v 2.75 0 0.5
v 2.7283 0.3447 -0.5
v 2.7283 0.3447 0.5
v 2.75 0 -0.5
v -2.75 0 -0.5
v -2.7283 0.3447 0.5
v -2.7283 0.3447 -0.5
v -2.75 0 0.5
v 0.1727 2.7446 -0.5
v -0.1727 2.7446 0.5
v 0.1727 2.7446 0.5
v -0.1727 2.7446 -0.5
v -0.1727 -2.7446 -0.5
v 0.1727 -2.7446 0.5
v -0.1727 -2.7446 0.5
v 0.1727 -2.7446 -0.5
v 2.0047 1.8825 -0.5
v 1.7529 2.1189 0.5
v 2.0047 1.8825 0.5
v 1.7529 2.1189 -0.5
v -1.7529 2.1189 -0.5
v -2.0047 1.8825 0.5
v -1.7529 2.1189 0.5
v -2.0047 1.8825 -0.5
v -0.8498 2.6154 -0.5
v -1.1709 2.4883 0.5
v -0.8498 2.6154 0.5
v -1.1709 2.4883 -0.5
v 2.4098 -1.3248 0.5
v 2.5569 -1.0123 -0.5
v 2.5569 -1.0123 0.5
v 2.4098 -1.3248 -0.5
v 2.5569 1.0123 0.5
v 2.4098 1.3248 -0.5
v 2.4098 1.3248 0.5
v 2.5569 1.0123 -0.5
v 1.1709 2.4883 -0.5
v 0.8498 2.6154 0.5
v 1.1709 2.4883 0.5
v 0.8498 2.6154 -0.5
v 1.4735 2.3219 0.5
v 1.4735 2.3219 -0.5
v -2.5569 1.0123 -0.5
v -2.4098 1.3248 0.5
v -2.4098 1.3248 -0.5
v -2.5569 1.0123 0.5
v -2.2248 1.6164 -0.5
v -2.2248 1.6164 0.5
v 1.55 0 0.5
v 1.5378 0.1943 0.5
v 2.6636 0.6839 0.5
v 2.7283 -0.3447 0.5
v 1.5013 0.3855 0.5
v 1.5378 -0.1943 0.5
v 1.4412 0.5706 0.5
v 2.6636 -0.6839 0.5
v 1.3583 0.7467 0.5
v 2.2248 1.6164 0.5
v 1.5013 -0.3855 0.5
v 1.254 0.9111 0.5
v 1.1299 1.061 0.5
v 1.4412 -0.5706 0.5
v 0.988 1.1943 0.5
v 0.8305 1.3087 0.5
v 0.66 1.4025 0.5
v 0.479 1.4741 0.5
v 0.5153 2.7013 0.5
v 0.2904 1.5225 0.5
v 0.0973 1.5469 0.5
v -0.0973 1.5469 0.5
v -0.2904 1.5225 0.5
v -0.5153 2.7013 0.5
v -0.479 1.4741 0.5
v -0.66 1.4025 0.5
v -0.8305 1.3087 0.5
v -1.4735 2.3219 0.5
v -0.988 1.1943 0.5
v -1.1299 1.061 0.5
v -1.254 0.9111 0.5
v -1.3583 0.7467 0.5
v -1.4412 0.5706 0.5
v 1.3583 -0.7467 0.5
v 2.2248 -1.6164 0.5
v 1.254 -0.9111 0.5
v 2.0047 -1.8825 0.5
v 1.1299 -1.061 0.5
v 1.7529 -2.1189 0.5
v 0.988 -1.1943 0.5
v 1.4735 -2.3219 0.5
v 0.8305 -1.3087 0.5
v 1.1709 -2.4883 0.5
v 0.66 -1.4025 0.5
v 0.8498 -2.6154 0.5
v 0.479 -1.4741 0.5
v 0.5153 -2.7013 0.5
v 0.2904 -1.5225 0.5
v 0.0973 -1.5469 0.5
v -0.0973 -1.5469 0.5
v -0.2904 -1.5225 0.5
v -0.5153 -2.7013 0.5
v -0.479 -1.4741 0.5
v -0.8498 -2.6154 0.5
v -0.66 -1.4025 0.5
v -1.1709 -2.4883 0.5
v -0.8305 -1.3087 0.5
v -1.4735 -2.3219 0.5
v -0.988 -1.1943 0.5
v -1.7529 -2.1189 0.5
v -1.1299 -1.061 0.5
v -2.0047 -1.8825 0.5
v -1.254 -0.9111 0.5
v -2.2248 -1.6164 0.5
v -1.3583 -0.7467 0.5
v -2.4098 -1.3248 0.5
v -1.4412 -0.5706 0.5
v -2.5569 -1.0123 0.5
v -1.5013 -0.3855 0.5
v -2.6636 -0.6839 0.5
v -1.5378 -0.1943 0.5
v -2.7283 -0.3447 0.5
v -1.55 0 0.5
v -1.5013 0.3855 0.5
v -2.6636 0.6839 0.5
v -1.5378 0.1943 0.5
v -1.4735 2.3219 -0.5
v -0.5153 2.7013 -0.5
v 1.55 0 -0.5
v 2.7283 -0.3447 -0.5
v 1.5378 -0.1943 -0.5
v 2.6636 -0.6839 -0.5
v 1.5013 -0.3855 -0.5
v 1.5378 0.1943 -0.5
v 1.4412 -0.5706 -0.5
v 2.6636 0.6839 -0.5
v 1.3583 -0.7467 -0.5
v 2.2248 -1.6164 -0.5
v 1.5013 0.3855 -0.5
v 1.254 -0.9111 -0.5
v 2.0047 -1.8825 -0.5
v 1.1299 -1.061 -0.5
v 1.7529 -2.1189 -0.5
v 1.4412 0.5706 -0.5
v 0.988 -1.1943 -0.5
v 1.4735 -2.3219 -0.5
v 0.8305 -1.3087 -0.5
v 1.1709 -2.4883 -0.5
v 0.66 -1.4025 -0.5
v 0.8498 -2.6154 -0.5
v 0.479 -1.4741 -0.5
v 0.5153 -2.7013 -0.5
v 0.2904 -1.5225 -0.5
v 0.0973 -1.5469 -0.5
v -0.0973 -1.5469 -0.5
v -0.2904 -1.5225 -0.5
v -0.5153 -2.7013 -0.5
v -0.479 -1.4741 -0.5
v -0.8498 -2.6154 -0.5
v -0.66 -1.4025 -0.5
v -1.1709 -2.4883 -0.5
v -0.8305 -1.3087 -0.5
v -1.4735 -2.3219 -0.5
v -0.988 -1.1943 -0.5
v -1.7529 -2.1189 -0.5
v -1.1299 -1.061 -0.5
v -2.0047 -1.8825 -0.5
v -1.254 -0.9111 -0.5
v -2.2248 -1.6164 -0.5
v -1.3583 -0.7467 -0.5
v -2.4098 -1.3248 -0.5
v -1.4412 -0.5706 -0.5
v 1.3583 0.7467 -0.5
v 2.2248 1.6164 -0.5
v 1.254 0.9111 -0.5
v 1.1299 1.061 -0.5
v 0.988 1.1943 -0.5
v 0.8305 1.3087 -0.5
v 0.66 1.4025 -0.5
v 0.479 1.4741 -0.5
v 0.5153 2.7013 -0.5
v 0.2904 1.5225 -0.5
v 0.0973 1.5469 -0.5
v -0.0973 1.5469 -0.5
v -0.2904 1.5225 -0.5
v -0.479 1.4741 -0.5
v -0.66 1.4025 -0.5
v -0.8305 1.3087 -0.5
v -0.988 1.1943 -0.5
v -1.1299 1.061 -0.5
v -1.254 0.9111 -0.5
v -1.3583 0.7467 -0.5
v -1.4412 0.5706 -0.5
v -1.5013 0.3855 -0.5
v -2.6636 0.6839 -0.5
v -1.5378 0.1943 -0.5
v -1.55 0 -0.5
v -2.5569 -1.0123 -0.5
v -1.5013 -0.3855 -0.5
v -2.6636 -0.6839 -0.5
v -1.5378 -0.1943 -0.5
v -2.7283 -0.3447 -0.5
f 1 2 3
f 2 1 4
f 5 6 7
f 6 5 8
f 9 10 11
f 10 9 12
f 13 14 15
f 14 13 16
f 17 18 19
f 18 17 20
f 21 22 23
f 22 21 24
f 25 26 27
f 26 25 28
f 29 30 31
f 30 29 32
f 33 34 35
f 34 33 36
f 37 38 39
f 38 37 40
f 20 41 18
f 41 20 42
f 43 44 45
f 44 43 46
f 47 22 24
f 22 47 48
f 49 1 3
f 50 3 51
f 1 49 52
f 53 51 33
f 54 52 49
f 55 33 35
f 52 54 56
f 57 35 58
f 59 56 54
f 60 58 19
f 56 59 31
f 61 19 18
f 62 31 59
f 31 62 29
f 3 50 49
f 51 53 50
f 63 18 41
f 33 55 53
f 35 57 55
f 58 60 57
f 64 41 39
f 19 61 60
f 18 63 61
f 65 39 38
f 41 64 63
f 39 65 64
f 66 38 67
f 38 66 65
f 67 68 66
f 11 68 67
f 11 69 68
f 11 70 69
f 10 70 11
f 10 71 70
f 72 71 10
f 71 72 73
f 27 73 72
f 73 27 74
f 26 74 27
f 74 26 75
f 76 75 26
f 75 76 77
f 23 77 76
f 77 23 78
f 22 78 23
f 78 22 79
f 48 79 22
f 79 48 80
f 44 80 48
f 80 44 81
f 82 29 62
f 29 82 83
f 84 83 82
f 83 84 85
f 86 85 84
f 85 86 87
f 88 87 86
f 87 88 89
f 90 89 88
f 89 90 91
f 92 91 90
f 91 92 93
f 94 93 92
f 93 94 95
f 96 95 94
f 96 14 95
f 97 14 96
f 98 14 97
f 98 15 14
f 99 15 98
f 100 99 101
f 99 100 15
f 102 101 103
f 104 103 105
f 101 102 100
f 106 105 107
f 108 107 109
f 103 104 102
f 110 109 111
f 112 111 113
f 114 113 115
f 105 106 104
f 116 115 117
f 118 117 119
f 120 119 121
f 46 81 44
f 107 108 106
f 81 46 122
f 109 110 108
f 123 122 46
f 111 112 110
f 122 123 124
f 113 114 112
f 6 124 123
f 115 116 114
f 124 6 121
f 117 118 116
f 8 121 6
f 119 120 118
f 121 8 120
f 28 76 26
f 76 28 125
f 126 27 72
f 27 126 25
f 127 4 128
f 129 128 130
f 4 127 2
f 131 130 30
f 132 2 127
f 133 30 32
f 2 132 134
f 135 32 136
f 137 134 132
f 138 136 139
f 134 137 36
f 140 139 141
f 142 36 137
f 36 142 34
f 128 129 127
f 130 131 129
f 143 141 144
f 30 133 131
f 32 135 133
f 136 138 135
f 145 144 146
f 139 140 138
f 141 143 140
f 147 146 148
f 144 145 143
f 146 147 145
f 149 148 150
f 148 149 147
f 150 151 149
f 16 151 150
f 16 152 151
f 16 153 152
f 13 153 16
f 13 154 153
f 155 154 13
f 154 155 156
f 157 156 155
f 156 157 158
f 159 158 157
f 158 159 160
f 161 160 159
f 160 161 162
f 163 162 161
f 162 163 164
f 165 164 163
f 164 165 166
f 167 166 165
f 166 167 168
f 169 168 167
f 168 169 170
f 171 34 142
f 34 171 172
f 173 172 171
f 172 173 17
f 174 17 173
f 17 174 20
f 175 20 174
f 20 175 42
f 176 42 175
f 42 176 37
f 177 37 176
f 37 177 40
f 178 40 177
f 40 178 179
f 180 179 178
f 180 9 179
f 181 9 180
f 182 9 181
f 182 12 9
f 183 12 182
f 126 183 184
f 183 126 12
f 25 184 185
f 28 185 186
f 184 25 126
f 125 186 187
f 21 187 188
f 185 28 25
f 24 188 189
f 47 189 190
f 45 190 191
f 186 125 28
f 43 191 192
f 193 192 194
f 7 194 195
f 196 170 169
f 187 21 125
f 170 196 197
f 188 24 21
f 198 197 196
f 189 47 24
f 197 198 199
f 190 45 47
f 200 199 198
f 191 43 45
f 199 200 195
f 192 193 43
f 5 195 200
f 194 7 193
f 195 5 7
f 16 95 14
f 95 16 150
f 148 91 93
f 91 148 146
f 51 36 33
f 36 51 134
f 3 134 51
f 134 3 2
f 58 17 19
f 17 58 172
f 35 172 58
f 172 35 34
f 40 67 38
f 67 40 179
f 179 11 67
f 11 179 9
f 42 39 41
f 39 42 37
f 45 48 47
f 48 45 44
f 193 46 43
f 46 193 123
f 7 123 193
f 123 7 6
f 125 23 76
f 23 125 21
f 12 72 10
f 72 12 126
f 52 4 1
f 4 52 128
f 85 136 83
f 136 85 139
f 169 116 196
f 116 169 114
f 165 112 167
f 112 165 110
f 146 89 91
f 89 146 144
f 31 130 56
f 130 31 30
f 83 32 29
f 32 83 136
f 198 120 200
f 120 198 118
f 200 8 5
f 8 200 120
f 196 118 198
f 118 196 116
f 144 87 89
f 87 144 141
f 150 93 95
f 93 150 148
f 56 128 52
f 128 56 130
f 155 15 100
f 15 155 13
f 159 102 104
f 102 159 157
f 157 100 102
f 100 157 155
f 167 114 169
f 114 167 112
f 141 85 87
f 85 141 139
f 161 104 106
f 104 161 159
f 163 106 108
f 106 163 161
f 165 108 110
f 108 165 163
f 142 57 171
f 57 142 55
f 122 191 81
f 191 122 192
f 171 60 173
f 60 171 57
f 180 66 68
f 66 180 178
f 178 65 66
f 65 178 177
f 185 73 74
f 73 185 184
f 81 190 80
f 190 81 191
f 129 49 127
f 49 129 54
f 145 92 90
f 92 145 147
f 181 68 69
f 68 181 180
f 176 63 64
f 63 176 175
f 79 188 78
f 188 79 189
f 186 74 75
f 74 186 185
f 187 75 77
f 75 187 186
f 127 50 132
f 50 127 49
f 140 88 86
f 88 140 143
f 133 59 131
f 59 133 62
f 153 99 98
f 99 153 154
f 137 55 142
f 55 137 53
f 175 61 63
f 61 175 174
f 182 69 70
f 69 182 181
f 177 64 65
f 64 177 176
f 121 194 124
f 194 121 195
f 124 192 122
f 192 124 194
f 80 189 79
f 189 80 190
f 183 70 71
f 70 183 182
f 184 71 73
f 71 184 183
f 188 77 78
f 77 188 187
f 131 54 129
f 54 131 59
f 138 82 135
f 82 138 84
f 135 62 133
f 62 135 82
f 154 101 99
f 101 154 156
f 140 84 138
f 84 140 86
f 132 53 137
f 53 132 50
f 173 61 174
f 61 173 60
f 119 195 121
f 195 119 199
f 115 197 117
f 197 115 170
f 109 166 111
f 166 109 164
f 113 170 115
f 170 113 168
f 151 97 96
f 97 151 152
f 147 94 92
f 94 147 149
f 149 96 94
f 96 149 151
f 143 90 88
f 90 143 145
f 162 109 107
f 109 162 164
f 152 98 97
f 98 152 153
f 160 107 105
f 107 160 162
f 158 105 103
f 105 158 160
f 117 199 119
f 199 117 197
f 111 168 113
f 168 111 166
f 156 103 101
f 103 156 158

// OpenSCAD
$fn = 50;


difference() {
	union() {
		translate(v = [0, 0, -0.5000000000]) {
			cylinder(h = 1, r = 2.7500000000);
		}
	}
	union() {
		translate(v = [0, 0, -100.0000000000]) {
			cylinder(h = 200, r = 1.5500000000);
		}
	}
}
